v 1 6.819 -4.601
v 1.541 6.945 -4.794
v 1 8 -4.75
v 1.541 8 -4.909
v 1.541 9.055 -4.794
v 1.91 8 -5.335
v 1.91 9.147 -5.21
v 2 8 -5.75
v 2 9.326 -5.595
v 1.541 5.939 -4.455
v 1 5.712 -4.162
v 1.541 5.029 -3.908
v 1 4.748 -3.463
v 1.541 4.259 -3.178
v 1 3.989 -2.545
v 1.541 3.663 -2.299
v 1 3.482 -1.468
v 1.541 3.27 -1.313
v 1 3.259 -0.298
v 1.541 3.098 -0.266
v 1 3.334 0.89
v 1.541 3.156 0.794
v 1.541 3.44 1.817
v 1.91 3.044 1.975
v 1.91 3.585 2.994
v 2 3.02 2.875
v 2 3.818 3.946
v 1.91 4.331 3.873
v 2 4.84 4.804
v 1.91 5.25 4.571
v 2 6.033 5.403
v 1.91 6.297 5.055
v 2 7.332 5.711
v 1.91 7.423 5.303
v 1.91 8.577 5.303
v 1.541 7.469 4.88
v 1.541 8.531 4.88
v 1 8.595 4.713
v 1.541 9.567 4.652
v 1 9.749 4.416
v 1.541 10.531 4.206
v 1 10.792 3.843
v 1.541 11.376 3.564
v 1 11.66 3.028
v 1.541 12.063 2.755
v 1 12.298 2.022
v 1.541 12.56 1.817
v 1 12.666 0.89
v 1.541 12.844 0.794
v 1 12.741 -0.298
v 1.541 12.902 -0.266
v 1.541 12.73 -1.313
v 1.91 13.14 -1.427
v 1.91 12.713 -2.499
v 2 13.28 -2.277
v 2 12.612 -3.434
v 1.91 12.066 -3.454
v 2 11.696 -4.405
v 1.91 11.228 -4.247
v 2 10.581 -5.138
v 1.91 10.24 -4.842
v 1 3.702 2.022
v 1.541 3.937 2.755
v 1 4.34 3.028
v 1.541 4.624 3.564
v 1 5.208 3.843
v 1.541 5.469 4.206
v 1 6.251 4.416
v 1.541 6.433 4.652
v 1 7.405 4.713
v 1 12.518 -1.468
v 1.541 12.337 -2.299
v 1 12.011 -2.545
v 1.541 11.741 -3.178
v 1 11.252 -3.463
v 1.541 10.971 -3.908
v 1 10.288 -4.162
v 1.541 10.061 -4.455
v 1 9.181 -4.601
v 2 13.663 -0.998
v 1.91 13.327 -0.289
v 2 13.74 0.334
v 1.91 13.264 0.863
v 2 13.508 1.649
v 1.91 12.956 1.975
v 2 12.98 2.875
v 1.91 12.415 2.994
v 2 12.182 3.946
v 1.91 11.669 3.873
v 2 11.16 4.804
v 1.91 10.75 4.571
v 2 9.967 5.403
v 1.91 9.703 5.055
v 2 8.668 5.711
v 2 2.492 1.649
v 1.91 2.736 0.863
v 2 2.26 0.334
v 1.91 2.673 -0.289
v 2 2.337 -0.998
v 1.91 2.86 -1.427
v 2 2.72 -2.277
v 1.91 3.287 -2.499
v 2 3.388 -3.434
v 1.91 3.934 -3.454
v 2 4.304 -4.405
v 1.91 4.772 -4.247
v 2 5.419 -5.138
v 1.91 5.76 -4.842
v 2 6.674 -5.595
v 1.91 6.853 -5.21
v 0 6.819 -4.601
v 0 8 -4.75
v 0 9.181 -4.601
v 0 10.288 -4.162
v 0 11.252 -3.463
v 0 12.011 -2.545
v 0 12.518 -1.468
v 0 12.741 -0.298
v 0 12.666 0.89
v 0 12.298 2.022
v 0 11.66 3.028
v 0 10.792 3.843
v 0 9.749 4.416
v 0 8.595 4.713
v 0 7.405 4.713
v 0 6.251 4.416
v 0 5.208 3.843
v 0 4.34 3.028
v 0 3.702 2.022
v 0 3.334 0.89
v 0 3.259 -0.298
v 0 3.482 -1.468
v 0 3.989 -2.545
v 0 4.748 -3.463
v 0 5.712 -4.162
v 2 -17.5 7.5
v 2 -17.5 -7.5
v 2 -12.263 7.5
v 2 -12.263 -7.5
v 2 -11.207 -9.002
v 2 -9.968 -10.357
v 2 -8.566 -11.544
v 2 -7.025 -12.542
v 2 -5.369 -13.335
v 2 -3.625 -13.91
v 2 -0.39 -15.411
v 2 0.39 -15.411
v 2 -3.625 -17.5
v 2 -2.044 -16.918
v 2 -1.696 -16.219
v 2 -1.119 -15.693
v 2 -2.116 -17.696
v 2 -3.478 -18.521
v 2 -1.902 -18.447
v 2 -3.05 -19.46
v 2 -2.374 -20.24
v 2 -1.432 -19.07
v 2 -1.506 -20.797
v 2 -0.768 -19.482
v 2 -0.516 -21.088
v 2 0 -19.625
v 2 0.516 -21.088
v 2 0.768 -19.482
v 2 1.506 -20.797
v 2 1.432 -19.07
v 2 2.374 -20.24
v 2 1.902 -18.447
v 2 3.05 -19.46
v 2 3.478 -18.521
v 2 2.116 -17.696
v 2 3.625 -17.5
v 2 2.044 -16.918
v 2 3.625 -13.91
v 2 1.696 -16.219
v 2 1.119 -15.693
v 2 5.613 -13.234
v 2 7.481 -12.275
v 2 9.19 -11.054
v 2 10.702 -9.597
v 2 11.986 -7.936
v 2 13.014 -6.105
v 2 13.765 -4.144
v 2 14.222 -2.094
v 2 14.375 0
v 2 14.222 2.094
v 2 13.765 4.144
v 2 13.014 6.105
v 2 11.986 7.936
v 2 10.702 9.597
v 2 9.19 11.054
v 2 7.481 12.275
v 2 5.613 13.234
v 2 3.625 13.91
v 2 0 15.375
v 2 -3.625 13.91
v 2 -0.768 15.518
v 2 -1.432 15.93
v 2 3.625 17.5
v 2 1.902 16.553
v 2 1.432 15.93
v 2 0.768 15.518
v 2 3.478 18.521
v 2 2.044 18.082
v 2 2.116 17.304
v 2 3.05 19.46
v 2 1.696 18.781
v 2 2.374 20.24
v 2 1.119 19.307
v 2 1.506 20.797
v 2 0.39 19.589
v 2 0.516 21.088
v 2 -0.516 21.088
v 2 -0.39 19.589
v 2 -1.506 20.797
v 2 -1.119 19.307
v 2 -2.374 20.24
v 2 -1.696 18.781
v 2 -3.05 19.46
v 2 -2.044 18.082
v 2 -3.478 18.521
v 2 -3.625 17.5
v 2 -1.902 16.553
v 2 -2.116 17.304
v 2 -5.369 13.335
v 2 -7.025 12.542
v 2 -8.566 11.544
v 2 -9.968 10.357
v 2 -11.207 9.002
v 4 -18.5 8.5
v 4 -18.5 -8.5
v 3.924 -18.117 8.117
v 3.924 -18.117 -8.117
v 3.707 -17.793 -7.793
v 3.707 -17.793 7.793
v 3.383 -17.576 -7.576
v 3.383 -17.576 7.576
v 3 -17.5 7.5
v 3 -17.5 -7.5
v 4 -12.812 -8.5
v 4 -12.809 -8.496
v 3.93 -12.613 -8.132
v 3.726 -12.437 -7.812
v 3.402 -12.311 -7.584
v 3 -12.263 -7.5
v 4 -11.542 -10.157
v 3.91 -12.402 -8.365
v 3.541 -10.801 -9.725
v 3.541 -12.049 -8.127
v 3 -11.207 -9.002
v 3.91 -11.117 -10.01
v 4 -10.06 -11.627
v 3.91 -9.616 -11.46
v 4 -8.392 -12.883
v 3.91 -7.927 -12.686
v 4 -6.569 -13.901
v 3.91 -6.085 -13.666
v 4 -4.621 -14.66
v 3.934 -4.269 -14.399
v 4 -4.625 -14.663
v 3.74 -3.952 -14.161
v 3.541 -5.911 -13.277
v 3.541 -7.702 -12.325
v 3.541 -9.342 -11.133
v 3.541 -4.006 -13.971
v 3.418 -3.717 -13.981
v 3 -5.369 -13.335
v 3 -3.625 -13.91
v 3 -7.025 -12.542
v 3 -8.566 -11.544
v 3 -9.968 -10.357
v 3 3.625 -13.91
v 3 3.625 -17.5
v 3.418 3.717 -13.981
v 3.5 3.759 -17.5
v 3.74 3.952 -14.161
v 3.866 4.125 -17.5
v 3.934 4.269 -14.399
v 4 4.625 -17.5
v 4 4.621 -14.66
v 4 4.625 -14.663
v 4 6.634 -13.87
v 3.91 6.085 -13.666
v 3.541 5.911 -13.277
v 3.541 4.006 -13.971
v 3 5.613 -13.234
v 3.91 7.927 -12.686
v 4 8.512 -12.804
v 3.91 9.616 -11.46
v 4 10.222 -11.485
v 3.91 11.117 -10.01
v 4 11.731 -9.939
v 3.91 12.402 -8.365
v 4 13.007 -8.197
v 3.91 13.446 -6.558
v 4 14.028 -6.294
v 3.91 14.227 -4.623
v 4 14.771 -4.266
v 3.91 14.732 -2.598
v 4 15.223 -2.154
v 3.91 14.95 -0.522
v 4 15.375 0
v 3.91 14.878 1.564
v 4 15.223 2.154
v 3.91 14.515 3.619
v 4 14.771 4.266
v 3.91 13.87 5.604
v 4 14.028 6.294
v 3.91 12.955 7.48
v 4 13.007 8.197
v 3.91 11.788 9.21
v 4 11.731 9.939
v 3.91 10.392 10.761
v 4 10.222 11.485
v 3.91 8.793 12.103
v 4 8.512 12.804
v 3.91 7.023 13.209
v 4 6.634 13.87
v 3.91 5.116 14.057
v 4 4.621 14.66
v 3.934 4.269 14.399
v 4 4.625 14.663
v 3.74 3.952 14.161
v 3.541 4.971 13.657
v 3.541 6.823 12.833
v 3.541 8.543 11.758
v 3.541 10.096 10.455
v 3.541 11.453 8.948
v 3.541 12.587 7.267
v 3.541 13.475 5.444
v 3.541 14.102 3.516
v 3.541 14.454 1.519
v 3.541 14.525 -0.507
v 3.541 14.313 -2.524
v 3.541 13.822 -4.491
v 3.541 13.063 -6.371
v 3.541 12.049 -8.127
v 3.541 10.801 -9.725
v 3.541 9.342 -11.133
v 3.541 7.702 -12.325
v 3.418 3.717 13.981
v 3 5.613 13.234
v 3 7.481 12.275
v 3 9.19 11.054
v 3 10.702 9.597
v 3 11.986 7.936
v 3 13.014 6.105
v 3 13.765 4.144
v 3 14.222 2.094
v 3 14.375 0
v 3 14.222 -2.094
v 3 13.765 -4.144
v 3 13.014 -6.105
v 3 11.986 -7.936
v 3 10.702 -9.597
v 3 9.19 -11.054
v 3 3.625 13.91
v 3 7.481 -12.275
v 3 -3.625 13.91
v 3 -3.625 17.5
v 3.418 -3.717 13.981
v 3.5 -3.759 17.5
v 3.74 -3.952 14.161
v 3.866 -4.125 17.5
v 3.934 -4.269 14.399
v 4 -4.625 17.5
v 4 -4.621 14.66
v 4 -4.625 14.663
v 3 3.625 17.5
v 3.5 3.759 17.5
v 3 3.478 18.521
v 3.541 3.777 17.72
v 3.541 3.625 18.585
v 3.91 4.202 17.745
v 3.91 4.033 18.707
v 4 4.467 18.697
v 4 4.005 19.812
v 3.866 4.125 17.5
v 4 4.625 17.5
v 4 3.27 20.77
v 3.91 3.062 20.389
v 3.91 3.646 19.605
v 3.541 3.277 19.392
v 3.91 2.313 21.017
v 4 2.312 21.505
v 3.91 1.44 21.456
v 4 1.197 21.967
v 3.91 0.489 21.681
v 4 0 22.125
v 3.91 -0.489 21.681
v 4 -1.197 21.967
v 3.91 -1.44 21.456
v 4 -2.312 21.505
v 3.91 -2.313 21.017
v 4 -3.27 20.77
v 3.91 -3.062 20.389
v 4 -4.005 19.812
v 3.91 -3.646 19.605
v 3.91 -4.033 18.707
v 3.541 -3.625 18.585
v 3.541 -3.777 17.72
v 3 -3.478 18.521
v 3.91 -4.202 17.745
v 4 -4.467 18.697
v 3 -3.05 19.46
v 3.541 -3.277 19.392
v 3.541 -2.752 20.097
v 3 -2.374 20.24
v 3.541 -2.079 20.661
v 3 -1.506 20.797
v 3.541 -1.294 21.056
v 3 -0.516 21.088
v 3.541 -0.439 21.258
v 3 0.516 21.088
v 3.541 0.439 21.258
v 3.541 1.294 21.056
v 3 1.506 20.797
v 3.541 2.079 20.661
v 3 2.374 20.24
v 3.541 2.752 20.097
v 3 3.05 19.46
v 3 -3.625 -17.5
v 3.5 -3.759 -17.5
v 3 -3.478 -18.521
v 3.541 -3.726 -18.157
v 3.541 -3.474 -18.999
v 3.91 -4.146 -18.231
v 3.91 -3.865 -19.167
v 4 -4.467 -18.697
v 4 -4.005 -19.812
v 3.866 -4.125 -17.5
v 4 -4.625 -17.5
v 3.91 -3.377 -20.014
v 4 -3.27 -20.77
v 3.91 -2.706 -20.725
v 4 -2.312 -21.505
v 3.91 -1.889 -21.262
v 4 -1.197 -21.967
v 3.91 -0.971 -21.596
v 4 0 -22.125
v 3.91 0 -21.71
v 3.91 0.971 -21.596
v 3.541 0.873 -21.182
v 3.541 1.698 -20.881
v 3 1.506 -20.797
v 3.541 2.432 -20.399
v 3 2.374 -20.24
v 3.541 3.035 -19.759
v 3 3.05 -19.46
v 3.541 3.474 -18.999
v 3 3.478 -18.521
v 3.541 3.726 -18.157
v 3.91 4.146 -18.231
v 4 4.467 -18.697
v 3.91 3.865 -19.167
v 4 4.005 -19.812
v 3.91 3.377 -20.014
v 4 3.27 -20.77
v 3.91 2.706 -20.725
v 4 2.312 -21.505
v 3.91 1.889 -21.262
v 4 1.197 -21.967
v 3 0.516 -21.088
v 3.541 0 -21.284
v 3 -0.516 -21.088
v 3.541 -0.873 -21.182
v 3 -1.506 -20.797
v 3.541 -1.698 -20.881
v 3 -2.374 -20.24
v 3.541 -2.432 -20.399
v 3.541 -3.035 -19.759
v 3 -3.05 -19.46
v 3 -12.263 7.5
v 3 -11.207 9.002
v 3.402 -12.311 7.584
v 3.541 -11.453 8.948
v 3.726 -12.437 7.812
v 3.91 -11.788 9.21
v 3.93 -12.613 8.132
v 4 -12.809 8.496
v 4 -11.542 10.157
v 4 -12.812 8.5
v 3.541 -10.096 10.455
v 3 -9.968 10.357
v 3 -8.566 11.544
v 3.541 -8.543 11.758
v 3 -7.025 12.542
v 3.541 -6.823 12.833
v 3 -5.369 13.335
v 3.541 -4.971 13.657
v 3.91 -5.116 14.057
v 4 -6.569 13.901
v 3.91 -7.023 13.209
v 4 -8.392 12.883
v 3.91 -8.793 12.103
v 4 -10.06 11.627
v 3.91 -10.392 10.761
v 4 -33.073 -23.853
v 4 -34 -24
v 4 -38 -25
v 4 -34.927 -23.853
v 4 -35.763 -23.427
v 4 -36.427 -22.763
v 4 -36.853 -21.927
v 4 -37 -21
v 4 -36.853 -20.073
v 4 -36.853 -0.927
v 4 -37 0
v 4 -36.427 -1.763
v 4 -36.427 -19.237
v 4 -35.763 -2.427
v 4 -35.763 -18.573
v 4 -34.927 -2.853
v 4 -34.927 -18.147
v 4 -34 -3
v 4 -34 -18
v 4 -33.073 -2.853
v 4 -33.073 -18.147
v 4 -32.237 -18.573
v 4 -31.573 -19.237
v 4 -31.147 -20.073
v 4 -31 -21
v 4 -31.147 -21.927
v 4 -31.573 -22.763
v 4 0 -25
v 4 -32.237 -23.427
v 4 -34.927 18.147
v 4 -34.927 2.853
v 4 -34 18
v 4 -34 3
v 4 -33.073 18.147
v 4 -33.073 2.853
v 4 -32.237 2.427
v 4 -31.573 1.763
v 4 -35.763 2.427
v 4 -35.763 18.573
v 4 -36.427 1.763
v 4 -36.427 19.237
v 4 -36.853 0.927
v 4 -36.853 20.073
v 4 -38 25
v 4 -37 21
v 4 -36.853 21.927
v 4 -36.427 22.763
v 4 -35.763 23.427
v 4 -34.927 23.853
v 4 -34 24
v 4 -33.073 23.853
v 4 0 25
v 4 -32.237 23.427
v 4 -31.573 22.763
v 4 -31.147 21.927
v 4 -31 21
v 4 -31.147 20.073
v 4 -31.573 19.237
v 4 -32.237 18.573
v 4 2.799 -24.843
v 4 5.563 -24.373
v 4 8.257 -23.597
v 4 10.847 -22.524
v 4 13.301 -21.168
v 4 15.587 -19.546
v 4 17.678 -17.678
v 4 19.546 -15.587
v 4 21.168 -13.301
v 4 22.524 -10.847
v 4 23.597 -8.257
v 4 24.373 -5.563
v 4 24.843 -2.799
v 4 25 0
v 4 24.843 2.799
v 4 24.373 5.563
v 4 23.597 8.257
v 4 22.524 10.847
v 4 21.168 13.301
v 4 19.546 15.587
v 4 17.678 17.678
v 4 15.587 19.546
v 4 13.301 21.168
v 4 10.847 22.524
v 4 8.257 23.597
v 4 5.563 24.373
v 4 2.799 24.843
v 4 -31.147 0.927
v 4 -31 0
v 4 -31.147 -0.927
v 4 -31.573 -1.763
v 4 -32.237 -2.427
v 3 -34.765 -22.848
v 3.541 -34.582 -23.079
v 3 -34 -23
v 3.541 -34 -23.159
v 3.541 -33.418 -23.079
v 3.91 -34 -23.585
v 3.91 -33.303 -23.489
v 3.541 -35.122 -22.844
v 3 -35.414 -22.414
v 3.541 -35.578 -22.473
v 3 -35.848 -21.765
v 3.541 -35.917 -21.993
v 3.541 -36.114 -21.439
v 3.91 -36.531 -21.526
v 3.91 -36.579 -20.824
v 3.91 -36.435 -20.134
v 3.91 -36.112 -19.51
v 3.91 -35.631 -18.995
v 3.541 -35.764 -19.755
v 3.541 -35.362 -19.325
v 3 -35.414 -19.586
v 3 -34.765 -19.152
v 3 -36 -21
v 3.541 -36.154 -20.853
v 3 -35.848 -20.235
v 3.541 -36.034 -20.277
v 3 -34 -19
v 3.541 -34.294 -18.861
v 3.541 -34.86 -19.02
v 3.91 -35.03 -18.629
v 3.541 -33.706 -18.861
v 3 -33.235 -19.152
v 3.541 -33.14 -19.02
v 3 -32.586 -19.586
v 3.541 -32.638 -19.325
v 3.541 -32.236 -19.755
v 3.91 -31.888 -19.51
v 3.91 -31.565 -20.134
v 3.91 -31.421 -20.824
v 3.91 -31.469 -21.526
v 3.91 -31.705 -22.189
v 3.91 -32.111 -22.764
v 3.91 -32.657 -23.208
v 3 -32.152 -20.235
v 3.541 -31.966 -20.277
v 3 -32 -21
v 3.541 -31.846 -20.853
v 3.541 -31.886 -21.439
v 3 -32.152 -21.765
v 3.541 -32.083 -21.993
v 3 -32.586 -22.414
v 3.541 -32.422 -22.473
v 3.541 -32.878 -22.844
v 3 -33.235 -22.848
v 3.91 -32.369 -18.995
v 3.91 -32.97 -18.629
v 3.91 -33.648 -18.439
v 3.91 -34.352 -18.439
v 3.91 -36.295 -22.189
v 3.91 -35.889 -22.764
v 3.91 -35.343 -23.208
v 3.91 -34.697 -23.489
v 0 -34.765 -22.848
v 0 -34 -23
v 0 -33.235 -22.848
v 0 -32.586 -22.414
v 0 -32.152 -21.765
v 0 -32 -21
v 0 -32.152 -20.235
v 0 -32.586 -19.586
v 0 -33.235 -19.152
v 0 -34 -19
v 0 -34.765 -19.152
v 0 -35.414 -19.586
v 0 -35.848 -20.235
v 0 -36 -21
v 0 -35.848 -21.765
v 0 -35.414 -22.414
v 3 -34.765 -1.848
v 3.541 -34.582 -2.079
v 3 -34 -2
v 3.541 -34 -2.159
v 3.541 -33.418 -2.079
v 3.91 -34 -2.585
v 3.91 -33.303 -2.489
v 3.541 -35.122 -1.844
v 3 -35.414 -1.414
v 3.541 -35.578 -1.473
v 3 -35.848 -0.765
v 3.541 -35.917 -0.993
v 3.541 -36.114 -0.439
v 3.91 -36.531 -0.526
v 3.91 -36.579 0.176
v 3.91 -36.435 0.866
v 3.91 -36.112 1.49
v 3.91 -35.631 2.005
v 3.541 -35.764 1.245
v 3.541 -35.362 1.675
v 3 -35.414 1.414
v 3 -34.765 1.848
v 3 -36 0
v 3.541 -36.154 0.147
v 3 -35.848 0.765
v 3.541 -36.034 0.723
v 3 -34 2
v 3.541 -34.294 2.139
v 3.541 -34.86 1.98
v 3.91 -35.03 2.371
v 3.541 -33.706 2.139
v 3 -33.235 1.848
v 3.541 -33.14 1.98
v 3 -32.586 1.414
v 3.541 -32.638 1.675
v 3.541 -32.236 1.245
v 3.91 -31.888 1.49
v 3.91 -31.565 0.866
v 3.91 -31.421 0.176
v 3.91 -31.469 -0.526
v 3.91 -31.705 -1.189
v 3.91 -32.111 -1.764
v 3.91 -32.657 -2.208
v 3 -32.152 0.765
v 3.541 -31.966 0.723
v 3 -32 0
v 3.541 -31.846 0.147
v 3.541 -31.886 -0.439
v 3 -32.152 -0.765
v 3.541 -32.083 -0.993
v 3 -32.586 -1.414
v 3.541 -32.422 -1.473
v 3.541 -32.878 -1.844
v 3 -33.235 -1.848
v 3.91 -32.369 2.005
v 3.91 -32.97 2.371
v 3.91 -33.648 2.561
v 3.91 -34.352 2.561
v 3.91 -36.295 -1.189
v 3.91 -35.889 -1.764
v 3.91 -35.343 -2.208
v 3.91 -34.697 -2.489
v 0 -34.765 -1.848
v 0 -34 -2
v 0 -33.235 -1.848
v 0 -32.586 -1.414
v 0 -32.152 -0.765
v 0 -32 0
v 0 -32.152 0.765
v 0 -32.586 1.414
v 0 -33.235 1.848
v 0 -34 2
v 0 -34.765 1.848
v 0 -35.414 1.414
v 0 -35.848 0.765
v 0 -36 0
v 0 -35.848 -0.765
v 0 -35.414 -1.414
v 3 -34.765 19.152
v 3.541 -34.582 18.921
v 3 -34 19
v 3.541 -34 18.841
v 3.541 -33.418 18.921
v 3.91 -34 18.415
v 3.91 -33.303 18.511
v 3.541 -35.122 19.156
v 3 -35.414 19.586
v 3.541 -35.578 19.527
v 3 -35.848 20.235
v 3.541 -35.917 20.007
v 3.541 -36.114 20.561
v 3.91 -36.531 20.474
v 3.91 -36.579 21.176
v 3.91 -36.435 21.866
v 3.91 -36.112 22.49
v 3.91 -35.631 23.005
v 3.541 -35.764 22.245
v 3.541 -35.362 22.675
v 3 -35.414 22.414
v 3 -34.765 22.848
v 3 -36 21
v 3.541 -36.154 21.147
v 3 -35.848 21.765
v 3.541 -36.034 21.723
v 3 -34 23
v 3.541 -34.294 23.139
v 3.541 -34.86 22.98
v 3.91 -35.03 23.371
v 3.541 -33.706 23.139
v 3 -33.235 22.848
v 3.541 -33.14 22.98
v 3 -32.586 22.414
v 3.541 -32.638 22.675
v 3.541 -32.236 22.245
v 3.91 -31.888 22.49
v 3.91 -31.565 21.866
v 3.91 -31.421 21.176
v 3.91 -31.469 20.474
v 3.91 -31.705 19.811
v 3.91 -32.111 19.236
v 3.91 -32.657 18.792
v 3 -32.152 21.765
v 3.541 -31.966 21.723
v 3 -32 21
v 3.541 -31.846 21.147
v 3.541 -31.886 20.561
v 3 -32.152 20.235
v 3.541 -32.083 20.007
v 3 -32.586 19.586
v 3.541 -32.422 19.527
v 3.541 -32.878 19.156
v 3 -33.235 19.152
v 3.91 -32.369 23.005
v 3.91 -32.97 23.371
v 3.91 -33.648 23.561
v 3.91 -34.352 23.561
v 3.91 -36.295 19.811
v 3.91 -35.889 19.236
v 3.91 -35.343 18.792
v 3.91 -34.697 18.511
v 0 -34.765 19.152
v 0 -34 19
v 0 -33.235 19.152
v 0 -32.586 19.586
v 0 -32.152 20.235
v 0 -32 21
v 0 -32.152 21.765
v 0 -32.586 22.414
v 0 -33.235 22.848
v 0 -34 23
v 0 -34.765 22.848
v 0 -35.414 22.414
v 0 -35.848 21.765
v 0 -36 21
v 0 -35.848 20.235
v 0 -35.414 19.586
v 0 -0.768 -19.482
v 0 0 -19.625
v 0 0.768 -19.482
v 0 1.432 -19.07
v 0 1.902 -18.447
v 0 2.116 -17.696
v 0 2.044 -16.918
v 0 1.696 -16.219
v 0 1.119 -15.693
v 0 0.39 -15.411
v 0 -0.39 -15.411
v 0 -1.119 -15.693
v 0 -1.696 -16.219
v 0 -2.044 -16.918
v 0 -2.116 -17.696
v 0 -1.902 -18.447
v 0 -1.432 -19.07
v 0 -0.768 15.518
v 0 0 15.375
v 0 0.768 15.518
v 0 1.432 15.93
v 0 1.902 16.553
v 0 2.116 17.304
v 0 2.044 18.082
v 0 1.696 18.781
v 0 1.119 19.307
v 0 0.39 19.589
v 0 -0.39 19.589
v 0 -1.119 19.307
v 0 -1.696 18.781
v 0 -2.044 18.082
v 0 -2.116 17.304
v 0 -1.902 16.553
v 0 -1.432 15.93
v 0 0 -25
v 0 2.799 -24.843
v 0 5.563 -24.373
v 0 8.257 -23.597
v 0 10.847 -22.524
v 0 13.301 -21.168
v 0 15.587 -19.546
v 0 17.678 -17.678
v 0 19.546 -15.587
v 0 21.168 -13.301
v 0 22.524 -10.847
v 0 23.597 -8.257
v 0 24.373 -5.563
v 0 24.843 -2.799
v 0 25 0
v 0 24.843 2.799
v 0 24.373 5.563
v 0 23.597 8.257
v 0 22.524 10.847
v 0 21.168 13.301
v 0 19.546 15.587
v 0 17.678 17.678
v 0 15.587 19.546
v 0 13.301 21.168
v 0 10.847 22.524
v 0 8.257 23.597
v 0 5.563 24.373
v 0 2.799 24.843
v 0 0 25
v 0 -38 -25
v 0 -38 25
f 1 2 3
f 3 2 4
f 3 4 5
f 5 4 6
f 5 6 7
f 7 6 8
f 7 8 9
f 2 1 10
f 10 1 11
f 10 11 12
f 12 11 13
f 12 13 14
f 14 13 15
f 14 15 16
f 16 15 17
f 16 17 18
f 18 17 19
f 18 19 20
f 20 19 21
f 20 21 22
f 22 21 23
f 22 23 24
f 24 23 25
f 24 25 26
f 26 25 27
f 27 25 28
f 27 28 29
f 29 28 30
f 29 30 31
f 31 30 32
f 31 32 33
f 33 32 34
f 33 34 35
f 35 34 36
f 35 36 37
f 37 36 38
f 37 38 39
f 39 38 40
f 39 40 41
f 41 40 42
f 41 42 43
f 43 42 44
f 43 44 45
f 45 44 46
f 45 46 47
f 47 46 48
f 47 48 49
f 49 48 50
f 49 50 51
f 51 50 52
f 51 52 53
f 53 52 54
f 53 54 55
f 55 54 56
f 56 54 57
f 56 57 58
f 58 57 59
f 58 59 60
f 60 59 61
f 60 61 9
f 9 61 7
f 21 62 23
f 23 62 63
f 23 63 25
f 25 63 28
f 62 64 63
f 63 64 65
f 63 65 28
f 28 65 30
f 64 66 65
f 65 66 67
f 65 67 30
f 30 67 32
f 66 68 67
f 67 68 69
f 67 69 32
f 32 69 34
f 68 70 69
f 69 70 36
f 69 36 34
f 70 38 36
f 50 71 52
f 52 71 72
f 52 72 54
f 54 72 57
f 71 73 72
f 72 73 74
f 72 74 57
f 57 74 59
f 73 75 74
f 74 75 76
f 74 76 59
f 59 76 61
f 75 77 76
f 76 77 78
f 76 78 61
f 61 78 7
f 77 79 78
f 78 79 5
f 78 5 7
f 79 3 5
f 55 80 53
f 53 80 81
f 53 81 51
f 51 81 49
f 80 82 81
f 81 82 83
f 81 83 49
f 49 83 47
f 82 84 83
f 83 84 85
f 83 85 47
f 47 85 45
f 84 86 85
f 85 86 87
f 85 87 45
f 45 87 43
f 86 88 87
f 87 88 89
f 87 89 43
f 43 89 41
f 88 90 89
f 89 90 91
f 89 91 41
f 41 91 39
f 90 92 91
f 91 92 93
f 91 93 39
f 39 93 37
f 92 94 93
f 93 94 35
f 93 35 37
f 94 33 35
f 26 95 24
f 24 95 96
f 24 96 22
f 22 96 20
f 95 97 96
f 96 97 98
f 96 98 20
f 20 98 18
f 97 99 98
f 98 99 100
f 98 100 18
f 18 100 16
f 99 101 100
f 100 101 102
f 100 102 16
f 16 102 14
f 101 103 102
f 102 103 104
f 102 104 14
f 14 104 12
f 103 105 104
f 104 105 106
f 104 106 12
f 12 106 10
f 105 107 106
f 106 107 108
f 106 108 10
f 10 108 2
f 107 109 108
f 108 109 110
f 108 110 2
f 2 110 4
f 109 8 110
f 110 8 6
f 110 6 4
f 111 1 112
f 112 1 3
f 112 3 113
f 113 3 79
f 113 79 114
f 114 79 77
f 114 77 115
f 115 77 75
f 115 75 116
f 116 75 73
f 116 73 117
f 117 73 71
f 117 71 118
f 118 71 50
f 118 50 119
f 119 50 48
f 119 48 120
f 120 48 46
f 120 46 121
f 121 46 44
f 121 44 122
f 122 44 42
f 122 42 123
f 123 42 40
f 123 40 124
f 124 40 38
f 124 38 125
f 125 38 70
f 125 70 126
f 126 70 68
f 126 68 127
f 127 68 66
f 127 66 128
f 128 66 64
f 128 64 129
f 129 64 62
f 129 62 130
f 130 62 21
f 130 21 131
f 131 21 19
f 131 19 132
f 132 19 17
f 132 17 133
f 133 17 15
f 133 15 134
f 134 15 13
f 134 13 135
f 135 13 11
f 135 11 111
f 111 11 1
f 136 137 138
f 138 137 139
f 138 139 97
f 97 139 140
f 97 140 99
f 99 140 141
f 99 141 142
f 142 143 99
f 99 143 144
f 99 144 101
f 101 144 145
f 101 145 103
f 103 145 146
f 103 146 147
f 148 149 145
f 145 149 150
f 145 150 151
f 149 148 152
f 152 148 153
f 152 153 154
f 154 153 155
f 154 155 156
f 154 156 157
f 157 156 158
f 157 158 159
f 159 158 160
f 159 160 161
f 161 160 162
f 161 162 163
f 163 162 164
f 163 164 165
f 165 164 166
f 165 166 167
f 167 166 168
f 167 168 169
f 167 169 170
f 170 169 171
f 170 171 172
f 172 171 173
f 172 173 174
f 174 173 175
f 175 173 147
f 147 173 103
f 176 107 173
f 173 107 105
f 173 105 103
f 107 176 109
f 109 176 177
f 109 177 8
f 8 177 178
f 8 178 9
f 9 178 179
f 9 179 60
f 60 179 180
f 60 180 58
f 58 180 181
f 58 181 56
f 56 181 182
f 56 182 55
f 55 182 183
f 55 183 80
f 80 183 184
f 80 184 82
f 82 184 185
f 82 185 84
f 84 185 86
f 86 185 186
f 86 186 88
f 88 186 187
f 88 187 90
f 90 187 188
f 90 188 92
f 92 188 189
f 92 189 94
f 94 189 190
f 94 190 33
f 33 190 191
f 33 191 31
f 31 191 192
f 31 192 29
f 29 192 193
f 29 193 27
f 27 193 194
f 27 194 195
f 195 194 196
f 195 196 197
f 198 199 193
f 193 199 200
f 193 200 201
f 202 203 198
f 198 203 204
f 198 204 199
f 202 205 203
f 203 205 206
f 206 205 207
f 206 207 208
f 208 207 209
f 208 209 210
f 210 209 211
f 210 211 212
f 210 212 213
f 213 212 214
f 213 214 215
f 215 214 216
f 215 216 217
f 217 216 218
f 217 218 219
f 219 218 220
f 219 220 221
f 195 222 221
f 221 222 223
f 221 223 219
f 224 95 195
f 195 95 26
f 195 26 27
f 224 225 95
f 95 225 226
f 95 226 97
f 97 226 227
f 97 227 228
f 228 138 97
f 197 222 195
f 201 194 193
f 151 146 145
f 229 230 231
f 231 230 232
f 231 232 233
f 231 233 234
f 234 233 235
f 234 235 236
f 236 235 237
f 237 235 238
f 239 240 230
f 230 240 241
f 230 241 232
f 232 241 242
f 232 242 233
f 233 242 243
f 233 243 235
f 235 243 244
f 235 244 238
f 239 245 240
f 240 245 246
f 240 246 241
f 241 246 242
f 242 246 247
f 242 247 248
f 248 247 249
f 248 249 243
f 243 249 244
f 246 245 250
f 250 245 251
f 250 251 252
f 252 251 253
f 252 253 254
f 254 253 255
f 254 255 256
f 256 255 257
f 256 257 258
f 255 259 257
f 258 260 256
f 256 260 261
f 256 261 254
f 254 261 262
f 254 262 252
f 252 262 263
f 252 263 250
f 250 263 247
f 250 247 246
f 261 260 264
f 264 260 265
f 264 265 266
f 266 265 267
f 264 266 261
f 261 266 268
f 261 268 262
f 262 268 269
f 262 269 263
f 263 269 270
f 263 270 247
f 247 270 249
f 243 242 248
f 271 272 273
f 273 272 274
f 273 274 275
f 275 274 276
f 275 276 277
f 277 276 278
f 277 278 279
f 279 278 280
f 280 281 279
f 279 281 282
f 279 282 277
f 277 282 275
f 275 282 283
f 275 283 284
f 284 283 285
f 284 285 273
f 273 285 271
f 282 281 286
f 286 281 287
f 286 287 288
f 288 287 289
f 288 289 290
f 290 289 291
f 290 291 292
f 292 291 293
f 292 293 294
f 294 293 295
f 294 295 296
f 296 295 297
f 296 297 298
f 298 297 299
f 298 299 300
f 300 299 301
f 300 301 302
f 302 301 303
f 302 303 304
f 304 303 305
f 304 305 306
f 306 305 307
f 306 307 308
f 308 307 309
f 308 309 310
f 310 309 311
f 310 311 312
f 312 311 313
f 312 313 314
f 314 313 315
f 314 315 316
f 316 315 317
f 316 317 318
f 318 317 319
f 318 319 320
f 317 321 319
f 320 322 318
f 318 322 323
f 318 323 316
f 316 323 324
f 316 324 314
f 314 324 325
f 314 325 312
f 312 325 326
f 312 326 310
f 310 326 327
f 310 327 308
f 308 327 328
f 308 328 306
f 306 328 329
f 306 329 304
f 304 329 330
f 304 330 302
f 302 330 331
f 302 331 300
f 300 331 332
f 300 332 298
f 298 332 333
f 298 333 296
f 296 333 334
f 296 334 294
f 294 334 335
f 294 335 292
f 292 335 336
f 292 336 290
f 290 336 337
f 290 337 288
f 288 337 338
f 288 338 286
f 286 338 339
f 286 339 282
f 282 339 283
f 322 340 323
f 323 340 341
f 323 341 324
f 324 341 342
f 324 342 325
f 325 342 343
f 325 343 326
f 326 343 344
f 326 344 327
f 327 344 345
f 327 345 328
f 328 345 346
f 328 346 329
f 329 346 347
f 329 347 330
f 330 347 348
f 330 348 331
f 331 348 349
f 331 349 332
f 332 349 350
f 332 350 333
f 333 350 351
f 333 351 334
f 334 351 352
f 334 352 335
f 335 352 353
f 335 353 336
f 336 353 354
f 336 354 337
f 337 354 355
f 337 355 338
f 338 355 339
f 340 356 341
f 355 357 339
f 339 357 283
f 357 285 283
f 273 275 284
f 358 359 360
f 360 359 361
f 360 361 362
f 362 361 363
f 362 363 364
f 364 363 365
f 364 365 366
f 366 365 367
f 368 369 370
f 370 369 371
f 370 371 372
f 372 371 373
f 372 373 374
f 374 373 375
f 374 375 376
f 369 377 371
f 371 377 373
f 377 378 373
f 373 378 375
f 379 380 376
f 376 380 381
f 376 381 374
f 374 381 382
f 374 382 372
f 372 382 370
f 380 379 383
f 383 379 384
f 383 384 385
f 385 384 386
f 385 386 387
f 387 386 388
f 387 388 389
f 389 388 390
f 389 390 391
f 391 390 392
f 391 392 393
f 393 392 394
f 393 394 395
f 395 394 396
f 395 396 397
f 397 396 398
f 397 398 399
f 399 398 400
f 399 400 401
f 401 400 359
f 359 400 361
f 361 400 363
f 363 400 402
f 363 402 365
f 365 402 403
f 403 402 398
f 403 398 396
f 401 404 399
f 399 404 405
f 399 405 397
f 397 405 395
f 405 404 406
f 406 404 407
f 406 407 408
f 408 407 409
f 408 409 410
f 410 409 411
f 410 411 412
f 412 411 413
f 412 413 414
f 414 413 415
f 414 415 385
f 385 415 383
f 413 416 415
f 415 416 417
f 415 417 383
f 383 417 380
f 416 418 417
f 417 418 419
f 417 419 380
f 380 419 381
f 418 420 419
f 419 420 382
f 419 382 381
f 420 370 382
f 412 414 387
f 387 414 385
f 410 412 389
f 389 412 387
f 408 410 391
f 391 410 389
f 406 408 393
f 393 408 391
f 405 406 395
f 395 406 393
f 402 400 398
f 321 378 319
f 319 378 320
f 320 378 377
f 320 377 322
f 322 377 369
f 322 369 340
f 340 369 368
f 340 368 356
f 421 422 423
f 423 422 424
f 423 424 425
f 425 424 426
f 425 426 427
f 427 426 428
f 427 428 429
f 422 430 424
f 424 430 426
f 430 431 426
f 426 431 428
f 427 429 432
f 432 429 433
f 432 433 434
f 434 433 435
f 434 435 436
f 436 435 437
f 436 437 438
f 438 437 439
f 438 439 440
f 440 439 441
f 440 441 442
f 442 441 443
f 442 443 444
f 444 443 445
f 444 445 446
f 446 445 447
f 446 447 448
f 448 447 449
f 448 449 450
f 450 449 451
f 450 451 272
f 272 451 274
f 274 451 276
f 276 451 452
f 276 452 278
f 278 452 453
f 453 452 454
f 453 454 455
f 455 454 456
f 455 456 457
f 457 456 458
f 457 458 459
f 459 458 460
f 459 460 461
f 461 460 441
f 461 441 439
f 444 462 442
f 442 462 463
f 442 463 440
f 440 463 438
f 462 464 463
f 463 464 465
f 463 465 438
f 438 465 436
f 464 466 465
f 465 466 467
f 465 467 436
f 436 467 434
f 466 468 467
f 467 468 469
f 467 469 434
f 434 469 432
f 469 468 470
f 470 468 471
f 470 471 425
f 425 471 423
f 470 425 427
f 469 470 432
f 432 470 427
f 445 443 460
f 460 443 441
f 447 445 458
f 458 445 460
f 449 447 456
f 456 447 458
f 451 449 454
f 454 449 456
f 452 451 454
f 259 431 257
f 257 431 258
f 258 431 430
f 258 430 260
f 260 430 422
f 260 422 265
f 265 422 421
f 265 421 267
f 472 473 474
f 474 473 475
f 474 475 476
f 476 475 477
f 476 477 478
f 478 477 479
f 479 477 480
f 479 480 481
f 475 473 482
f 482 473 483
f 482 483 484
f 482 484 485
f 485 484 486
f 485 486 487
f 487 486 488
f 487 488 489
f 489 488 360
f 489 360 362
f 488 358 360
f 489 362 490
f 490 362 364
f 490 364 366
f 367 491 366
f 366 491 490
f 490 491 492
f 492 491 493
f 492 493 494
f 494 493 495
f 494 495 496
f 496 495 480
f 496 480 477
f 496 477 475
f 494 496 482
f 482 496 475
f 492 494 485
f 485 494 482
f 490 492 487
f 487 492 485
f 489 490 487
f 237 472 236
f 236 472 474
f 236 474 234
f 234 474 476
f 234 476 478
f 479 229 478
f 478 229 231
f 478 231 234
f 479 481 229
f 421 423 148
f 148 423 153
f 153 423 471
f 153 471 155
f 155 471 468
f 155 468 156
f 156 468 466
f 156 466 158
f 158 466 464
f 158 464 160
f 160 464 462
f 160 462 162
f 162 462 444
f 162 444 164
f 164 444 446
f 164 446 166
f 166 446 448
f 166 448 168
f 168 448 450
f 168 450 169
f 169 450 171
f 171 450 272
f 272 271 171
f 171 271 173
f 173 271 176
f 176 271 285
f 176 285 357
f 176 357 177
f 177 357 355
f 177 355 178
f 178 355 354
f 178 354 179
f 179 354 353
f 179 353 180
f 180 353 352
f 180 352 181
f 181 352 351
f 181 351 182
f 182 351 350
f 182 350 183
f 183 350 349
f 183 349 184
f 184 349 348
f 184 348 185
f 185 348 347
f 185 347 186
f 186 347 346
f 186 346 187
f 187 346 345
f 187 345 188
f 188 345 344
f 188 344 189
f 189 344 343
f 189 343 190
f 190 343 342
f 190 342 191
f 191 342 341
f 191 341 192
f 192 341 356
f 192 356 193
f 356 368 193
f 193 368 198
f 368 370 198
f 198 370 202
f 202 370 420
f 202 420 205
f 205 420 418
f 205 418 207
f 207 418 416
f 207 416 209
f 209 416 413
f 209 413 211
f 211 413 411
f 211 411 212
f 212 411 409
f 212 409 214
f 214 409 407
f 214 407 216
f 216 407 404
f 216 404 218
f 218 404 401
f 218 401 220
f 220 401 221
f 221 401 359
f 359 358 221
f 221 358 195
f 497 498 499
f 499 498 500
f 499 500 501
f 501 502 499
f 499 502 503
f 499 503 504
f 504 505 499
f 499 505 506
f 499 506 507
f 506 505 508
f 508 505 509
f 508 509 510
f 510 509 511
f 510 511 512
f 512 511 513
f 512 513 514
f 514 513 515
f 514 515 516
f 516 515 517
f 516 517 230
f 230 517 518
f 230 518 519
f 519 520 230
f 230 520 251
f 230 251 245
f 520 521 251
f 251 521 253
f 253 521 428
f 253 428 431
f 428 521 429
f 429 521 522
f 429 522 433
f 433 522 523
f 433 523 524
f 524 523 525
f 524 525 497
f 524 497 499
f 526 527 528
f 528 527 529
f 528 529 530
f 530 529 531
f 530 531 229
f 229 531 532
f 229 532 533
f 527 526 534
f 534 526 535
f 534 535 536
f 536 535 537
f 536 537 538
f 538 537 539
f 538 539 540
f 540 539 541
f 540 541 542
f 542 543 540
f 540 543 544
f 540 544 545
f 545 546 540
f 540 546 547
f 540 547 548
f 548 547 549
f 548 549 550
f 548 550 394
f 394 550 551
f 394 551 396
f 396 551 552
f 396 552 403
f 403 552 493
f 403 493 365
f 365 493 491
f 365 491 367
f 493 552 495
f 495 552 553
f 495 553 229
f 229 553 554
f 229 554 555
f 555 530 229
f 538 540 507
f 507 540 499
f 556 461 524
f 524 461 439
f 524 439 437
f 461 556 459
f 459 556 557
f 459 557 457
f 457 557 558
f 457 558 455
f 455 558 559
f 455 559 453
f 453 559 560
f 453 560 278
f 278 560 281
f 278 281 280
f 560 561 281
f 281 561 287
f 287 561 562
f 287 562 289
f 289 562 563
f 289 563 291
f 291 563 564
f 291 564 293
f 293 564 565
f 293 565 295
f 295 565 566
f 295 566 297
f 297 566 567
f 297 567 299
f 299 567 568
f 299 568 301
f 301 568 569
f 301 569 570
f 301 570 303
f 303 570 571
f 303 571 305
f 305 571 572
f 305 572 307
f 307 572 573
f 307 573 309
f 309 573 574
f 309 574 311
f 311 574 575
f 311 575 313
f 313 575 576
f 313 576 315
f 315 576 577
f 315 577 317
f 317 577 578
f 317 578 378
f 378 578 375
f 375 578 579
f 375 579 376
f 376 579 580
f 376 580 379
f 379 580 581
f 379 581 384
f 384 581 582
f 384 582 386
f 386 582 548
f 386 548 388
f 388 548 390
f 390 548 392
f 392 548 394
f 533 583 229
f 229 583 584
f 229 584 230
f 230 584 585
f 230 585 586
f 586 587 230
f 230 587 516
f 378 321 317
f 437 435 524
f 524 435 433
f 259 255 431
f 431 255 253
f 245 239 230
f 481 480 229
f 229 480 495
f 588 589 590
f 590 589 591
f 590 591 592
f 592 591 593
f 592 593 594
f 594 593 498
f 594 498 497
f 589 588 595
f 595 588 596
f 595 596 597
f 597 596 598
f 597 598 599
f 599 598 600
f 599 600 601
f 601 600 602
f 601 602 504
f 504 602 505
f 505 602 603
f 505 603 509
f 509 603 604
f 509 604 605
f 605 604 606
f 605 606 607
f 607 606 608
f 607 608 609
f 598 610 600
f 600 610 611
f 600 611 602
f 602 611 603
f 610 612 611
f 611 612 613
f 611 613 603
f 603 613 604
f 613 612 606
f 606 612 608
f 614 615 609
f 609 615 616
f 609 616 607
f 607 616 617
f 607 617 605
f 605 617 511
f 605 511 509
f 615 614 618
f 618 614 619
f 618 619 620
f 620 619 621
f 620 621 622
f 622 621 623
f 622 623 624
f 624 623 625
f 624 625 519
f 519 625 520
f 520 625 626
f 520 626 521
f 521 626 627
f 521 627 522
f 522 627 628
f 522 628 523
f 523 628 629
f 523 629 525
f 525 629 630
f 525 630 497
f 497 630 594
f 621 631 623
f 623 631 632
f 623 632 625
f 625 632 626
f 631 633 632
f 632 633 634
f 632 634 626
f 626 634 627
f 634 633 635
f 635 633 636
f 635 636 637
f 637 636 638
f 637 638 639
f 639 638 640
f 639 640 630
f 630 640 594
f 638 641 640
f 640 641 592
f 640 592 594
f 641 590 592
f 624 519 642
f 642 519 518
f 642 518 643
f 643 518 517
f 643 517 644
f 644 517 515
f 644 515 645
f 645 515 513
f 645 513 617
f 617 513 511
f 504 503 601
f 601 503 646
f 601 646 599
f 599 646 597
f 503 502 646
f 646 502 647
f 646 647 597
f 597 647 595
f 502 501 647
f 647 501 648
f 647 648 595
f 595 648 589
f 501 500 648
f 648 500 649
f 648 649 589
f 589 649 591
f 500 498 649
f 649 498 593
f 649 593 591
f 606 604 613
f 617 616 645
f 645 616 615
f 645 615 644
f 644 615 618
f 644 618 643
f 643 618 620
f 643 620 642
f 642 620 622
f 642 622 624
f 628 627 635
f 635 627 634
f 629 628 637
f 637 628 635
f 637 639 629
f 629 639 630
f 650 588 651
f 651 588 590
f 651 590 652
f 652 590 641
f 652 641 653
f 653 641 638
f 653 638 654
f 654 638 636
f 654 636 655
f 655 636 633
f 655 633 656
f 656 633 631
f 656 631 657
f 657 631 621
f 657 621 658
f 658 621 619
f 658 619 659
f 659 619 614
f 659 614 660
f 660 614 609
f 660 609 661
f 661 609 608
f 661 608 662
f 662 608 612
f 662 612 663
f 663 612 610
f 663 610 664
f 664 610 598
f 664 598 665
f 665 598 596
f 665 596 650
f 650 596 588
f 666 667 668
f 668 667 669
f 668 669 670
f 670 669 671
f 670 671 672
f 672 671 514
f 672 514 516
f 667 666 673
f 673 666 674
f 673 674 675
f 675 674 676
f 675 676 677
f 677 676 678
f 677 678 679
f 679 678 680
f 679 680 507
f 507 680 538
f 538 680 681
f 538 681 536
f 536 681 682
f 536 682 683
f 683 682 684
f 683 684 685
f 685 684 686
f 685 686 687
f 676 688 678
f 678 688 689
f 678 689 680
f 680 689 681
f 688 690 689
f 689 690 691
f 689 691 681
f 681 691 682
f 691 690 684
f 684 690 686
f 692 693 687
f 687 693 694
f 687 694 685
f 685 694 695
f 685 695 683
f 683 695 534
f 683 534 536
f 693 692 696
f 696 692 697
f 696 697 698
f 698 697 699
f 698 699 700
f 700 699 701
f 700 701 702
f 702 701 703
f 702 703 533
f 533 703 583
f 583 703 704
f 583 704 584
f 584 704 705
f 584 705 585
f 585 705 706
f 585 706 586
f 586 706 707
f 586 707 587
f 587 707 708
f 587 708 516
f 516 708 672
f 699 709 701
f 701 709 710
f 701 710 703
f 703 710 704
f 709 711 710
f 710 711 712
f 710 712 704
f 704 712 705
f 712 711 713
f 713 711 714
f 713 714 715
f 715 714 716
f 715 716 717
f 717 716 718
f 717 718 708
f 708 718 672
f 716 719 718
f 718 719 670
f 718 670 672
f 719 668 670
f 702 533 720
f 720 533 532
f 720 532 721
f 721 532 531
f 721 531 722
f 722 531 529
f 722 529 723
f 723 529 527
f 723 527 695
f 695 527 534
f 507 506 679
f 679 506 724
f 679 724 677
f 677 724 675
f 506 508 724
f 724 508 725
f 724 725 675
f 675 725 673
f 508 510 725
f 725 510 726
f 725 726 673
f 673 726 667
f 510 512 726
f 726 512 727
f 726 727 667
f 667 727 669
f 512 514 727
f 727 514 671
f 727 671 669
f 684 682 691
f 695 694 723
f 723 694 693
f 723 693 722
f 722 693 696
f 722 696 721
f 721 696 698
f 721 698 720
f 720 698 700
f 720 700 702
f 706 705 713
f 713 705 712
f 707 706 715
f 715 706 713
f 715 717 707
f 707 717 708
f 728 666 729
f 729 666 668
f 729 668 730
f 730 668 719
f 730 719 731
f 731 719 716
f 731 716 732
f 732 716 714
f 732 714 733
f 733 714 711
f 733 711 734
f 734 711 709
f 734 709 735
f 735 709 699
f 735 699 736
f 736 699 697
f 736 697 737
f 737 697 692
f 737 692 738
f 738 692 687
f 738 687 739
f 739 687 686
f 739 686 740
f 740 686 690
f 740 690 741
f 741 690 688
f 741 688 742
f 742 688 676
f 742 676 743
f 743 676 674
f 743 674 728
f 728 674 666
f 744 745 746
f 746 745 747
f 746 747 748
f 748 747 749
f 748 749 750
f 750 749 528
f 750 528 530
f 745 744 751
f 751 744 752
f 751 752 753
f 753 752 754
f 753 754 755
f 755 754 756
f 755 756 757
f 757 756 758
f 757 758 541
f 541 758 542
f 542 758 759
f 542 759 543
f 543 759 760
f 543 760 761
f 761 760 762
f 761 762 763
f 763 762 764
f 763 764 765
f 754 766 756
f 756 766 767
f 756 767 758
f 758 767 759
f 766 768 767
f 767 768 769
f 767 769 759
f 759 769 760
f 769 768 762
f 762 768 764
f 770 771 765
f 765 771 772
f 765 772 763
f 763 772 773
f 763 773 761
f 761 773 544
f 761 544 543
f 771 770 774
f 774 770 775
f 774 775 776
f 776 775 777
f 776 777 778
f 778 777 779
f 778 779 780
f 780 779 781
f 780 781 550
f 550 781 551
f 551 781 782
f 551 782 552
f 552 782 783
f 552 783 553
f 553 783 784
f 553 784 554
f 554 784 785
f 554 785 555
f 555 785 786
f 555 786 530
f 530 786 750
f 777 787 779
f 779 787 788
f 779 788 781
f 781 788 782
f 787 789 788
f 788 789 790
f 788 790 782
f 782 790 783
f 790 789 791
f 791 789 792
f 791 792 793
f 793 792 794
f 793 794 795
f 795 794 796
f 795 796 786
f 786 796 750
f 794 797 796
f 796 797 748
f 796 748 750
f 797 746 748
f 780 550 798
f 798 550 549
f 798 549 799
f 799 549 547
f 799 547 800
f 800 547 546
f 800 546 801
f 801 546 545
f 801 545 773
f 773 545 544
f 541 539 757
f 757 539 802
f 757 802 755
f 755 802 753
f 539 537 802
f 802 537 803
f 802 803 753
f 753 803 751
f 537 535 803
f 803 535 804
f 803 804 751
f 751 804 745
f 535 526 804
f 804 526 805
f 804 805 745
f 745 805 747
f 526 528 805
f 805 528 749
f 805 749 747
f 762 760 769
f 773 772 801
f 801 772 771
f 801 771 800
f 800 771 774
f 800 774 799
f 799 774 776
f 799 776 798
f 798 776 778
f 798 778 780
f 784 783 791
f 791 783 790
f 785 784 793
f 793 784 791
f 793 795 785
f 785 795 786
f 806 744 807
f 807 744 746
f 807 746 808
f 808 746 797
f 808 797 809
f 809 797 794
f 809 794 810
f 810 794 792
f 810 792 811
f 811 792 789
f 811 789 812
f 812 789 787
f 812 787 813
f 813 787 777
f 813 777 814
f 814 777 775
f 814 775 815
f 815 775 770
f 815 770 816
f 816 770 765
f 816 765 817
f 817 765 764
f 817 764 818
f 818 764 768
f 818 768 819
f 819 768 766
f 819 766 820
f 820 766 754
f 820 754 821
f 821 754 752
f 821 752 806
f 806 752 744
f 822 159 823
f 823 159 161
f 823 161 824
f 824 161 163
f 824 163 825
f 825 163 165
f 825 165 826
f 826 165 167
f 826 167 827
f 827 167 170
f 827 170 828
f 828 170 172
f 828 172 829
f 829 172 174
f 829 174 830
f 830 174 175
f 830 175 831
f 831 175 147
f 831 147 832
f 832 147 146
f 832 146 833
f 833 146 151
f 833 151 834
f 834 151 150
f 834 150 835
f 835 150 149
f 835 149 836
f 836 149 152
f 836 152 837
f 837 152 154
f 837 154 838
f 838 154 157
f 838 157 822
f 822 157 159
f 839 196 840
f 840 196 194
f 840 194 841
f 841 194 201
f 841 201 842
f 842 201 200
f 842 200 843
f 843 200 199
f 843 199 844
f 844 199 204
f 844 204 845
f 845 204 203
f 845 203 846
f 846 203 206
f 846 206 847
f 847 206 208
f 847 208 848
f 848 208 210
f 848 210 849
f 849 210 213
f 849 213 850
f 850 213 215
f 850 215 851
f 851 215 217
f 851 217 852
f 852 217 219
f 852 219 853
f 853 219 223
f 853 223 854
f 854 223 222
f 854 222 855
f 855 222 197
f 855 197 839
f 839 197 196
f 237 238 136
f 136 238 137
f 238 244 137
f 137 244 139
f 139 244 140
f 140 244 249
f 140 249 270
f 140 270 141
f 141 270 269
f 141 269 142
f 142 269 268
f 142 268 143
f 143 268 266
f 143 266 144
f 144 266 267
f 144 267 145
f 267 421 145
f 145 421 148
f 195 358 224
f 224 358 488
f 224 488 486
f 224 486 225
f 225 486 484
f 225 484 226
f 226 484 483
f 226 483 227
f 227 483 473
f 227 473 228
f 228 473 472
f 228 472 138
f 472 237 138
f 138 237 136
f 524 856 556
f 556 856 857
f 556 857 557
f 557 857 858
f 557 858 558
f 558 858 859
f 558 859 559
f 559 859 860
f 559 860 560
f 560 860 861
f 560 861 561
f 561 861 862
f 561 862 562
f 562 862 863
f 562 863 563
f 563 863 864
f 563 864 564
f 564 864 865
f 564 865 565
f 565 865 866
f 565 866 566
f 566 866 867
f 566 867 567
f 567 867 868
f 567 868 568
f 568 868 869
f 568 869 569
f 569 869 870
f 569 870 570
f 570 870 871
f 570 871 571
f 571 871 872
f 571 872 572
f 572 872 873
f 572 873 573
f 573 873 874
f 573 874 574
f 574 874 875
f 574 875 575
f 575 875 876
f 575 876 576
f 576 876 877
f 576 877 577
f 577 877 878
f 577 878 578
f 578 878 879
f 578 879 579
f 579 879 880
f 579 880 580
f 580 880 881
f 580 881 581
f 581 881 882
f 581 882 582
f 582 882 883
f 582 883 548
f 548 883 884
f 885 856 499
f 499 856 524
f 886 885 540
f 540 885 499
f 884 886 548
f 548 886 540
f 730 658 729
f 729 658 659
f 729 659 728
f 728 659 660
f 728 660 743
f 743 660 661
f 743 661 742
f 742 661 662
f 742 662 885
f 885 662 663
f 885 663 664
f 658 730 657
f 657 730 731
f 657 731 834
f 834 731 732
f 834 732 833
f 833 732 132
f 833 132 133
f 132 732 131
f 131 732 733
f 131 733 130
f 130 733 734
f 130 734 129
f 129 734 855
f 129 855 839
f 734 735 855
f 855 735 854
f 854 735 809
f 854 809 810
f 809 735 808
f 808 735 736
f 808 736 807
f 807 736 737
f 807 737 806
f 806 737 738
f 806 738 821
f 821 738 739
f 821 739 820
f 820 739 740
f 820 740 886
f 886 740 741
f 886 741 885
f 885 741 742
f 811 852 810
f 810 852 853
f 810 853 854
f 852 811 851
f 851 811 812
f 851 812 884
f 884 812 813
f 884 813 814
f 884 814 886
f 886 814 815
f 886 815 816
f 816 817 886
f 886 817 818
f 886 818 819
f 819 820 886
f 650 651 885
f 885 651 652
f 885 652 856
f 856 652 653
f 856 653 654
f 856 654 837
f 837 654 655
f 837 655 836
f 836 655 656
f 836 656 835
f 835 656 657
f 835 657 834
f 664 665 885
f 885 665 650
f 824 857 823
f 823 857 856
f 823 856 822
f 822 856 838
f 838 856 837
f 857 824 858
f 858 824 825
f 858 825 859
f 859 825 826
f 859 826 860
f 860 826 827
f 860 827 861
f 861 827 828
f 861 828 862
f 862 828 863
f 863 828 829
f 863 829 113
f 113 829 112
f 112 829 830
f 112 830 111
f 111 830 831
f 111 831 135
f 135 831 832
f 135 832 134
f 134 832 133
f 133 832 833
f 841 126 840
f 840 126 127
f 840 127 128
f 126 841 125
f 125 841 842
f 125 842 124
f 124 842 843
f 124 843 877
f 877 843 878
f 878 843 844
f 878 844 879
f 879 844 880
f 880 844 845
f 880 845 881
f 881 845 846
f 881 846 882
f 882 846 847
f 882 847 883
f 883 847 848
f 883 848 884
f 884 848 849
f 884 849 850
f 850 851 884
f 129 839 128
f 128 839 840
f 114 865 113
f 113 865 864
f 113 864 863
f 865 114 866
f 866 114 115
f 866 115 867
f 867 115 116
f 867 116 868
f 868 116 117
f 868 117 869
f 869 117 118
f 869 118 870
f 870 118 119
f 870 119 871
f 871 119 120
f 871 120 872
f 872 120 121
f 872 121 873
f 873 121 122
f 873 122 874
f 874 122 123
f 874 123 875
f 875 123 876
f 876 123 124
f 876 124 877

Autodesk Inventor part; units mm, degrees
ref_plane "YZ Plane" through (0, 0, 0) normal (1, 0, 0) x (0, 1, 0)
ref_plane "XZ Plane" through (0, 0, 0) normal (0, 1, 0) x (-1, 0, 0)
ref_plane "XY Plane" through (0, 0, 0) normal (0, 0, 1) x (1, 0, 0)
sketch "Sketch1" plane through (0, 0, 0) normal (1, 0, 0) x (0, 1, 0)
  line L0 (0, 25) -> (-38, 25)
  line L1 (0, -25) -> (-38, -25)
  line L2 (-38, 25) -> (-38, -25)
  arc A0 (0, -25) -> (0, 25) centre (0, 0) ccw
  point P0 (0, 0)
  dimension "d3" = 25
  dimension "d4" = 25
  dimension "d7" = 25
  dimension "d9" = 38
  dimension "d10" = 38
extrude "Extrusion1" add sketch "Sketch1" along normal blind 4
sketch "Sketch2" plane through (4, 0, 0) normal (1, 0, 0) x (0, 0, -1)
  line L0 (-7.5, -12.2634) -> (-7.5, -17.5)
  line L1 (7.5, -17.5) -> (7.5, -11.9694)
  arc A0 (-17.5, 3.625) -> (-17.5, -3.625) centre (-17.5, 0) ccw
  arc A1 (17.5, -3.625) -> (17.5, 3.625) centre (17.5, 0) ccw
  line L2 (-17.5, 3.625) -> (-13.9104, 3.625)
  line L3 (13.9104, 3.625) -> (17.5, 3.625)
  line L4 (17.5, -3.625) -> (13.9104, -3.625)
  line L5 (-13.9104, -3.625) -> (-17.5, -3.625)
  line L6 (7.5, -17.5) -> (-7.5, -17.5)
  arc A2 (-13.9104, -3.625) -> (-7.5, -12.2634) centre (0, 0) ccw
  arc A3 (7.5, -12.2634) -> (13.9104, -3.625) centre (0, 0) ccw
  arc A4 (13.9104, 3.625) -> (-13.9104, 3.625) centre (0, 0) ccw
  point P0 (-7.5, -15.5)
  point P1 (7.5, -15.5)
  dimension "d14" = 7.5
  dimension "d15" = 7.5
  dimension "d20" = 7.25
  dimension "d21" = 7.25
  dimension "d25" = 90
  dimension "d27" = 0
  dimension "d55" = 13.875
  dimension "d57" = 19.125
  dimension "d58" = 19.125
  dimension "d60" = 14.375
  dimension "d61" = 14.375
  dimension "d62" = 14.375
  dimension "d63" = 3.625
  dimension "d64" = 10
  dimension "d65" = 6.4104
  dimension "d66" = 6.4104
  dimension "d67" = 15.5944
  dimension "d68" = 25
extrude "Extrusion2" cut sketch "Sketch2" against normal blind 2
sketch "Sketch3" plane through (2, 0, 0) normal (1, 0, 0) x (0, 0, -1)
  line L0 (-7.5, -17.5) -> (-7.5, -12.2634) projected
  line L1 (7.5, -12.2634) -> (7.5, -17.5) projected
  line L2 (17.5, -3.625) -> (13.9104, -3.625) projected
  arc A0 (17.5, -3.625) -> (17.5, 3.625) centre (17.5, 0) ccw projected
  line L3 (13.9104, 3.625) -> (17.5, 3.625) projected
  line L4 (-17.5, 3.625) -> (-13.9104, 3.625) projected
  arc A1 (-17.5, 3.625) -> (-17.5, -3.625) centre (-17.5, 0) ccw projected
  line L5 (-13.9104, -3.625) -> (-17.5, -3.625) projected
  circle A2 centre (-17.5, 0) radius 2.125
  circle A3 centre (17.5, 0) radius 2.125
  circle A4 centre (0, 8) radius 4.75
  line L6 (7.5, -17.5) -> (-7.5, -17.5) projected
  arc A5 (7.5, -12.2634) -> (13.9104, -3.625) centre (0, 0) ccw projected
  arc A6 (13.9104, 3.625) -> (-13.9104, 3.625) centre (0, 0) ccw projected
  arc A7 (-13.9104, -3.625) -> (-7.5, -12.2634) centre (0, 0) ccw projected
  dimension "d32" = 4.25
  dimension "d33" = 4.25
  dimension "d40" = 9.5
  dimension "d41" = 11.625
  dimension "d42" = 7.5
extrude "Extrusion3" cut sketch "Sketch3" against normal through all contours A2 | A3 | A4
sketch "Sketch4" plane through (4, 0, 0) normal (1, 0, 0) x (0, 0, -1)
  circle A0 centre (-21, -34) radius 2
  circle A1 centre (0, -34) radius 2
  circle A2 centre (21, -34) radius 2
  line L0 (-25, -38) -> (25, -38) projected
  line L1 (-25, 0) -> (-25, -38) projected
  line L2 (25, -38) -> (25, 0) projected
  point P0 (0, 0)
  dimension "d43" = 4
  dimension "d44" = 4
  dimension "d45" = 4
  dimension "d46" = 4
  dimension "d47" = 4
  dimension "d48" = 4
  dimension "d49" = 4
  dimension "d50" = 4
  dimension "d51" = 25
extrude "Extrusion4" cut sketch "Sketch4" against normal through all
fillet "Fillet1" radius 1 3 edges at (4, -34, 23) (4, -34, 2) (4, -34, -19)
fillet "Fillet2" radius 1 13 edges at (4, 14.375, 0) (4, -8.5664, -11.5437) (4, 0, -21.125) (4, 3.625, -15.7052) (4, -3.625, -15.7052) (4, 0, 21.125) (4, 3.625, 15.7052) (4, -3.625, 15.7052) (4, -8.5664, 11.5437) (4, -17.5, 0) (4, -14.8817, 7.5) (4, -14.8817, -7.5) (2, 8, 4.75)
properties part number "feeder_motor_mount"
